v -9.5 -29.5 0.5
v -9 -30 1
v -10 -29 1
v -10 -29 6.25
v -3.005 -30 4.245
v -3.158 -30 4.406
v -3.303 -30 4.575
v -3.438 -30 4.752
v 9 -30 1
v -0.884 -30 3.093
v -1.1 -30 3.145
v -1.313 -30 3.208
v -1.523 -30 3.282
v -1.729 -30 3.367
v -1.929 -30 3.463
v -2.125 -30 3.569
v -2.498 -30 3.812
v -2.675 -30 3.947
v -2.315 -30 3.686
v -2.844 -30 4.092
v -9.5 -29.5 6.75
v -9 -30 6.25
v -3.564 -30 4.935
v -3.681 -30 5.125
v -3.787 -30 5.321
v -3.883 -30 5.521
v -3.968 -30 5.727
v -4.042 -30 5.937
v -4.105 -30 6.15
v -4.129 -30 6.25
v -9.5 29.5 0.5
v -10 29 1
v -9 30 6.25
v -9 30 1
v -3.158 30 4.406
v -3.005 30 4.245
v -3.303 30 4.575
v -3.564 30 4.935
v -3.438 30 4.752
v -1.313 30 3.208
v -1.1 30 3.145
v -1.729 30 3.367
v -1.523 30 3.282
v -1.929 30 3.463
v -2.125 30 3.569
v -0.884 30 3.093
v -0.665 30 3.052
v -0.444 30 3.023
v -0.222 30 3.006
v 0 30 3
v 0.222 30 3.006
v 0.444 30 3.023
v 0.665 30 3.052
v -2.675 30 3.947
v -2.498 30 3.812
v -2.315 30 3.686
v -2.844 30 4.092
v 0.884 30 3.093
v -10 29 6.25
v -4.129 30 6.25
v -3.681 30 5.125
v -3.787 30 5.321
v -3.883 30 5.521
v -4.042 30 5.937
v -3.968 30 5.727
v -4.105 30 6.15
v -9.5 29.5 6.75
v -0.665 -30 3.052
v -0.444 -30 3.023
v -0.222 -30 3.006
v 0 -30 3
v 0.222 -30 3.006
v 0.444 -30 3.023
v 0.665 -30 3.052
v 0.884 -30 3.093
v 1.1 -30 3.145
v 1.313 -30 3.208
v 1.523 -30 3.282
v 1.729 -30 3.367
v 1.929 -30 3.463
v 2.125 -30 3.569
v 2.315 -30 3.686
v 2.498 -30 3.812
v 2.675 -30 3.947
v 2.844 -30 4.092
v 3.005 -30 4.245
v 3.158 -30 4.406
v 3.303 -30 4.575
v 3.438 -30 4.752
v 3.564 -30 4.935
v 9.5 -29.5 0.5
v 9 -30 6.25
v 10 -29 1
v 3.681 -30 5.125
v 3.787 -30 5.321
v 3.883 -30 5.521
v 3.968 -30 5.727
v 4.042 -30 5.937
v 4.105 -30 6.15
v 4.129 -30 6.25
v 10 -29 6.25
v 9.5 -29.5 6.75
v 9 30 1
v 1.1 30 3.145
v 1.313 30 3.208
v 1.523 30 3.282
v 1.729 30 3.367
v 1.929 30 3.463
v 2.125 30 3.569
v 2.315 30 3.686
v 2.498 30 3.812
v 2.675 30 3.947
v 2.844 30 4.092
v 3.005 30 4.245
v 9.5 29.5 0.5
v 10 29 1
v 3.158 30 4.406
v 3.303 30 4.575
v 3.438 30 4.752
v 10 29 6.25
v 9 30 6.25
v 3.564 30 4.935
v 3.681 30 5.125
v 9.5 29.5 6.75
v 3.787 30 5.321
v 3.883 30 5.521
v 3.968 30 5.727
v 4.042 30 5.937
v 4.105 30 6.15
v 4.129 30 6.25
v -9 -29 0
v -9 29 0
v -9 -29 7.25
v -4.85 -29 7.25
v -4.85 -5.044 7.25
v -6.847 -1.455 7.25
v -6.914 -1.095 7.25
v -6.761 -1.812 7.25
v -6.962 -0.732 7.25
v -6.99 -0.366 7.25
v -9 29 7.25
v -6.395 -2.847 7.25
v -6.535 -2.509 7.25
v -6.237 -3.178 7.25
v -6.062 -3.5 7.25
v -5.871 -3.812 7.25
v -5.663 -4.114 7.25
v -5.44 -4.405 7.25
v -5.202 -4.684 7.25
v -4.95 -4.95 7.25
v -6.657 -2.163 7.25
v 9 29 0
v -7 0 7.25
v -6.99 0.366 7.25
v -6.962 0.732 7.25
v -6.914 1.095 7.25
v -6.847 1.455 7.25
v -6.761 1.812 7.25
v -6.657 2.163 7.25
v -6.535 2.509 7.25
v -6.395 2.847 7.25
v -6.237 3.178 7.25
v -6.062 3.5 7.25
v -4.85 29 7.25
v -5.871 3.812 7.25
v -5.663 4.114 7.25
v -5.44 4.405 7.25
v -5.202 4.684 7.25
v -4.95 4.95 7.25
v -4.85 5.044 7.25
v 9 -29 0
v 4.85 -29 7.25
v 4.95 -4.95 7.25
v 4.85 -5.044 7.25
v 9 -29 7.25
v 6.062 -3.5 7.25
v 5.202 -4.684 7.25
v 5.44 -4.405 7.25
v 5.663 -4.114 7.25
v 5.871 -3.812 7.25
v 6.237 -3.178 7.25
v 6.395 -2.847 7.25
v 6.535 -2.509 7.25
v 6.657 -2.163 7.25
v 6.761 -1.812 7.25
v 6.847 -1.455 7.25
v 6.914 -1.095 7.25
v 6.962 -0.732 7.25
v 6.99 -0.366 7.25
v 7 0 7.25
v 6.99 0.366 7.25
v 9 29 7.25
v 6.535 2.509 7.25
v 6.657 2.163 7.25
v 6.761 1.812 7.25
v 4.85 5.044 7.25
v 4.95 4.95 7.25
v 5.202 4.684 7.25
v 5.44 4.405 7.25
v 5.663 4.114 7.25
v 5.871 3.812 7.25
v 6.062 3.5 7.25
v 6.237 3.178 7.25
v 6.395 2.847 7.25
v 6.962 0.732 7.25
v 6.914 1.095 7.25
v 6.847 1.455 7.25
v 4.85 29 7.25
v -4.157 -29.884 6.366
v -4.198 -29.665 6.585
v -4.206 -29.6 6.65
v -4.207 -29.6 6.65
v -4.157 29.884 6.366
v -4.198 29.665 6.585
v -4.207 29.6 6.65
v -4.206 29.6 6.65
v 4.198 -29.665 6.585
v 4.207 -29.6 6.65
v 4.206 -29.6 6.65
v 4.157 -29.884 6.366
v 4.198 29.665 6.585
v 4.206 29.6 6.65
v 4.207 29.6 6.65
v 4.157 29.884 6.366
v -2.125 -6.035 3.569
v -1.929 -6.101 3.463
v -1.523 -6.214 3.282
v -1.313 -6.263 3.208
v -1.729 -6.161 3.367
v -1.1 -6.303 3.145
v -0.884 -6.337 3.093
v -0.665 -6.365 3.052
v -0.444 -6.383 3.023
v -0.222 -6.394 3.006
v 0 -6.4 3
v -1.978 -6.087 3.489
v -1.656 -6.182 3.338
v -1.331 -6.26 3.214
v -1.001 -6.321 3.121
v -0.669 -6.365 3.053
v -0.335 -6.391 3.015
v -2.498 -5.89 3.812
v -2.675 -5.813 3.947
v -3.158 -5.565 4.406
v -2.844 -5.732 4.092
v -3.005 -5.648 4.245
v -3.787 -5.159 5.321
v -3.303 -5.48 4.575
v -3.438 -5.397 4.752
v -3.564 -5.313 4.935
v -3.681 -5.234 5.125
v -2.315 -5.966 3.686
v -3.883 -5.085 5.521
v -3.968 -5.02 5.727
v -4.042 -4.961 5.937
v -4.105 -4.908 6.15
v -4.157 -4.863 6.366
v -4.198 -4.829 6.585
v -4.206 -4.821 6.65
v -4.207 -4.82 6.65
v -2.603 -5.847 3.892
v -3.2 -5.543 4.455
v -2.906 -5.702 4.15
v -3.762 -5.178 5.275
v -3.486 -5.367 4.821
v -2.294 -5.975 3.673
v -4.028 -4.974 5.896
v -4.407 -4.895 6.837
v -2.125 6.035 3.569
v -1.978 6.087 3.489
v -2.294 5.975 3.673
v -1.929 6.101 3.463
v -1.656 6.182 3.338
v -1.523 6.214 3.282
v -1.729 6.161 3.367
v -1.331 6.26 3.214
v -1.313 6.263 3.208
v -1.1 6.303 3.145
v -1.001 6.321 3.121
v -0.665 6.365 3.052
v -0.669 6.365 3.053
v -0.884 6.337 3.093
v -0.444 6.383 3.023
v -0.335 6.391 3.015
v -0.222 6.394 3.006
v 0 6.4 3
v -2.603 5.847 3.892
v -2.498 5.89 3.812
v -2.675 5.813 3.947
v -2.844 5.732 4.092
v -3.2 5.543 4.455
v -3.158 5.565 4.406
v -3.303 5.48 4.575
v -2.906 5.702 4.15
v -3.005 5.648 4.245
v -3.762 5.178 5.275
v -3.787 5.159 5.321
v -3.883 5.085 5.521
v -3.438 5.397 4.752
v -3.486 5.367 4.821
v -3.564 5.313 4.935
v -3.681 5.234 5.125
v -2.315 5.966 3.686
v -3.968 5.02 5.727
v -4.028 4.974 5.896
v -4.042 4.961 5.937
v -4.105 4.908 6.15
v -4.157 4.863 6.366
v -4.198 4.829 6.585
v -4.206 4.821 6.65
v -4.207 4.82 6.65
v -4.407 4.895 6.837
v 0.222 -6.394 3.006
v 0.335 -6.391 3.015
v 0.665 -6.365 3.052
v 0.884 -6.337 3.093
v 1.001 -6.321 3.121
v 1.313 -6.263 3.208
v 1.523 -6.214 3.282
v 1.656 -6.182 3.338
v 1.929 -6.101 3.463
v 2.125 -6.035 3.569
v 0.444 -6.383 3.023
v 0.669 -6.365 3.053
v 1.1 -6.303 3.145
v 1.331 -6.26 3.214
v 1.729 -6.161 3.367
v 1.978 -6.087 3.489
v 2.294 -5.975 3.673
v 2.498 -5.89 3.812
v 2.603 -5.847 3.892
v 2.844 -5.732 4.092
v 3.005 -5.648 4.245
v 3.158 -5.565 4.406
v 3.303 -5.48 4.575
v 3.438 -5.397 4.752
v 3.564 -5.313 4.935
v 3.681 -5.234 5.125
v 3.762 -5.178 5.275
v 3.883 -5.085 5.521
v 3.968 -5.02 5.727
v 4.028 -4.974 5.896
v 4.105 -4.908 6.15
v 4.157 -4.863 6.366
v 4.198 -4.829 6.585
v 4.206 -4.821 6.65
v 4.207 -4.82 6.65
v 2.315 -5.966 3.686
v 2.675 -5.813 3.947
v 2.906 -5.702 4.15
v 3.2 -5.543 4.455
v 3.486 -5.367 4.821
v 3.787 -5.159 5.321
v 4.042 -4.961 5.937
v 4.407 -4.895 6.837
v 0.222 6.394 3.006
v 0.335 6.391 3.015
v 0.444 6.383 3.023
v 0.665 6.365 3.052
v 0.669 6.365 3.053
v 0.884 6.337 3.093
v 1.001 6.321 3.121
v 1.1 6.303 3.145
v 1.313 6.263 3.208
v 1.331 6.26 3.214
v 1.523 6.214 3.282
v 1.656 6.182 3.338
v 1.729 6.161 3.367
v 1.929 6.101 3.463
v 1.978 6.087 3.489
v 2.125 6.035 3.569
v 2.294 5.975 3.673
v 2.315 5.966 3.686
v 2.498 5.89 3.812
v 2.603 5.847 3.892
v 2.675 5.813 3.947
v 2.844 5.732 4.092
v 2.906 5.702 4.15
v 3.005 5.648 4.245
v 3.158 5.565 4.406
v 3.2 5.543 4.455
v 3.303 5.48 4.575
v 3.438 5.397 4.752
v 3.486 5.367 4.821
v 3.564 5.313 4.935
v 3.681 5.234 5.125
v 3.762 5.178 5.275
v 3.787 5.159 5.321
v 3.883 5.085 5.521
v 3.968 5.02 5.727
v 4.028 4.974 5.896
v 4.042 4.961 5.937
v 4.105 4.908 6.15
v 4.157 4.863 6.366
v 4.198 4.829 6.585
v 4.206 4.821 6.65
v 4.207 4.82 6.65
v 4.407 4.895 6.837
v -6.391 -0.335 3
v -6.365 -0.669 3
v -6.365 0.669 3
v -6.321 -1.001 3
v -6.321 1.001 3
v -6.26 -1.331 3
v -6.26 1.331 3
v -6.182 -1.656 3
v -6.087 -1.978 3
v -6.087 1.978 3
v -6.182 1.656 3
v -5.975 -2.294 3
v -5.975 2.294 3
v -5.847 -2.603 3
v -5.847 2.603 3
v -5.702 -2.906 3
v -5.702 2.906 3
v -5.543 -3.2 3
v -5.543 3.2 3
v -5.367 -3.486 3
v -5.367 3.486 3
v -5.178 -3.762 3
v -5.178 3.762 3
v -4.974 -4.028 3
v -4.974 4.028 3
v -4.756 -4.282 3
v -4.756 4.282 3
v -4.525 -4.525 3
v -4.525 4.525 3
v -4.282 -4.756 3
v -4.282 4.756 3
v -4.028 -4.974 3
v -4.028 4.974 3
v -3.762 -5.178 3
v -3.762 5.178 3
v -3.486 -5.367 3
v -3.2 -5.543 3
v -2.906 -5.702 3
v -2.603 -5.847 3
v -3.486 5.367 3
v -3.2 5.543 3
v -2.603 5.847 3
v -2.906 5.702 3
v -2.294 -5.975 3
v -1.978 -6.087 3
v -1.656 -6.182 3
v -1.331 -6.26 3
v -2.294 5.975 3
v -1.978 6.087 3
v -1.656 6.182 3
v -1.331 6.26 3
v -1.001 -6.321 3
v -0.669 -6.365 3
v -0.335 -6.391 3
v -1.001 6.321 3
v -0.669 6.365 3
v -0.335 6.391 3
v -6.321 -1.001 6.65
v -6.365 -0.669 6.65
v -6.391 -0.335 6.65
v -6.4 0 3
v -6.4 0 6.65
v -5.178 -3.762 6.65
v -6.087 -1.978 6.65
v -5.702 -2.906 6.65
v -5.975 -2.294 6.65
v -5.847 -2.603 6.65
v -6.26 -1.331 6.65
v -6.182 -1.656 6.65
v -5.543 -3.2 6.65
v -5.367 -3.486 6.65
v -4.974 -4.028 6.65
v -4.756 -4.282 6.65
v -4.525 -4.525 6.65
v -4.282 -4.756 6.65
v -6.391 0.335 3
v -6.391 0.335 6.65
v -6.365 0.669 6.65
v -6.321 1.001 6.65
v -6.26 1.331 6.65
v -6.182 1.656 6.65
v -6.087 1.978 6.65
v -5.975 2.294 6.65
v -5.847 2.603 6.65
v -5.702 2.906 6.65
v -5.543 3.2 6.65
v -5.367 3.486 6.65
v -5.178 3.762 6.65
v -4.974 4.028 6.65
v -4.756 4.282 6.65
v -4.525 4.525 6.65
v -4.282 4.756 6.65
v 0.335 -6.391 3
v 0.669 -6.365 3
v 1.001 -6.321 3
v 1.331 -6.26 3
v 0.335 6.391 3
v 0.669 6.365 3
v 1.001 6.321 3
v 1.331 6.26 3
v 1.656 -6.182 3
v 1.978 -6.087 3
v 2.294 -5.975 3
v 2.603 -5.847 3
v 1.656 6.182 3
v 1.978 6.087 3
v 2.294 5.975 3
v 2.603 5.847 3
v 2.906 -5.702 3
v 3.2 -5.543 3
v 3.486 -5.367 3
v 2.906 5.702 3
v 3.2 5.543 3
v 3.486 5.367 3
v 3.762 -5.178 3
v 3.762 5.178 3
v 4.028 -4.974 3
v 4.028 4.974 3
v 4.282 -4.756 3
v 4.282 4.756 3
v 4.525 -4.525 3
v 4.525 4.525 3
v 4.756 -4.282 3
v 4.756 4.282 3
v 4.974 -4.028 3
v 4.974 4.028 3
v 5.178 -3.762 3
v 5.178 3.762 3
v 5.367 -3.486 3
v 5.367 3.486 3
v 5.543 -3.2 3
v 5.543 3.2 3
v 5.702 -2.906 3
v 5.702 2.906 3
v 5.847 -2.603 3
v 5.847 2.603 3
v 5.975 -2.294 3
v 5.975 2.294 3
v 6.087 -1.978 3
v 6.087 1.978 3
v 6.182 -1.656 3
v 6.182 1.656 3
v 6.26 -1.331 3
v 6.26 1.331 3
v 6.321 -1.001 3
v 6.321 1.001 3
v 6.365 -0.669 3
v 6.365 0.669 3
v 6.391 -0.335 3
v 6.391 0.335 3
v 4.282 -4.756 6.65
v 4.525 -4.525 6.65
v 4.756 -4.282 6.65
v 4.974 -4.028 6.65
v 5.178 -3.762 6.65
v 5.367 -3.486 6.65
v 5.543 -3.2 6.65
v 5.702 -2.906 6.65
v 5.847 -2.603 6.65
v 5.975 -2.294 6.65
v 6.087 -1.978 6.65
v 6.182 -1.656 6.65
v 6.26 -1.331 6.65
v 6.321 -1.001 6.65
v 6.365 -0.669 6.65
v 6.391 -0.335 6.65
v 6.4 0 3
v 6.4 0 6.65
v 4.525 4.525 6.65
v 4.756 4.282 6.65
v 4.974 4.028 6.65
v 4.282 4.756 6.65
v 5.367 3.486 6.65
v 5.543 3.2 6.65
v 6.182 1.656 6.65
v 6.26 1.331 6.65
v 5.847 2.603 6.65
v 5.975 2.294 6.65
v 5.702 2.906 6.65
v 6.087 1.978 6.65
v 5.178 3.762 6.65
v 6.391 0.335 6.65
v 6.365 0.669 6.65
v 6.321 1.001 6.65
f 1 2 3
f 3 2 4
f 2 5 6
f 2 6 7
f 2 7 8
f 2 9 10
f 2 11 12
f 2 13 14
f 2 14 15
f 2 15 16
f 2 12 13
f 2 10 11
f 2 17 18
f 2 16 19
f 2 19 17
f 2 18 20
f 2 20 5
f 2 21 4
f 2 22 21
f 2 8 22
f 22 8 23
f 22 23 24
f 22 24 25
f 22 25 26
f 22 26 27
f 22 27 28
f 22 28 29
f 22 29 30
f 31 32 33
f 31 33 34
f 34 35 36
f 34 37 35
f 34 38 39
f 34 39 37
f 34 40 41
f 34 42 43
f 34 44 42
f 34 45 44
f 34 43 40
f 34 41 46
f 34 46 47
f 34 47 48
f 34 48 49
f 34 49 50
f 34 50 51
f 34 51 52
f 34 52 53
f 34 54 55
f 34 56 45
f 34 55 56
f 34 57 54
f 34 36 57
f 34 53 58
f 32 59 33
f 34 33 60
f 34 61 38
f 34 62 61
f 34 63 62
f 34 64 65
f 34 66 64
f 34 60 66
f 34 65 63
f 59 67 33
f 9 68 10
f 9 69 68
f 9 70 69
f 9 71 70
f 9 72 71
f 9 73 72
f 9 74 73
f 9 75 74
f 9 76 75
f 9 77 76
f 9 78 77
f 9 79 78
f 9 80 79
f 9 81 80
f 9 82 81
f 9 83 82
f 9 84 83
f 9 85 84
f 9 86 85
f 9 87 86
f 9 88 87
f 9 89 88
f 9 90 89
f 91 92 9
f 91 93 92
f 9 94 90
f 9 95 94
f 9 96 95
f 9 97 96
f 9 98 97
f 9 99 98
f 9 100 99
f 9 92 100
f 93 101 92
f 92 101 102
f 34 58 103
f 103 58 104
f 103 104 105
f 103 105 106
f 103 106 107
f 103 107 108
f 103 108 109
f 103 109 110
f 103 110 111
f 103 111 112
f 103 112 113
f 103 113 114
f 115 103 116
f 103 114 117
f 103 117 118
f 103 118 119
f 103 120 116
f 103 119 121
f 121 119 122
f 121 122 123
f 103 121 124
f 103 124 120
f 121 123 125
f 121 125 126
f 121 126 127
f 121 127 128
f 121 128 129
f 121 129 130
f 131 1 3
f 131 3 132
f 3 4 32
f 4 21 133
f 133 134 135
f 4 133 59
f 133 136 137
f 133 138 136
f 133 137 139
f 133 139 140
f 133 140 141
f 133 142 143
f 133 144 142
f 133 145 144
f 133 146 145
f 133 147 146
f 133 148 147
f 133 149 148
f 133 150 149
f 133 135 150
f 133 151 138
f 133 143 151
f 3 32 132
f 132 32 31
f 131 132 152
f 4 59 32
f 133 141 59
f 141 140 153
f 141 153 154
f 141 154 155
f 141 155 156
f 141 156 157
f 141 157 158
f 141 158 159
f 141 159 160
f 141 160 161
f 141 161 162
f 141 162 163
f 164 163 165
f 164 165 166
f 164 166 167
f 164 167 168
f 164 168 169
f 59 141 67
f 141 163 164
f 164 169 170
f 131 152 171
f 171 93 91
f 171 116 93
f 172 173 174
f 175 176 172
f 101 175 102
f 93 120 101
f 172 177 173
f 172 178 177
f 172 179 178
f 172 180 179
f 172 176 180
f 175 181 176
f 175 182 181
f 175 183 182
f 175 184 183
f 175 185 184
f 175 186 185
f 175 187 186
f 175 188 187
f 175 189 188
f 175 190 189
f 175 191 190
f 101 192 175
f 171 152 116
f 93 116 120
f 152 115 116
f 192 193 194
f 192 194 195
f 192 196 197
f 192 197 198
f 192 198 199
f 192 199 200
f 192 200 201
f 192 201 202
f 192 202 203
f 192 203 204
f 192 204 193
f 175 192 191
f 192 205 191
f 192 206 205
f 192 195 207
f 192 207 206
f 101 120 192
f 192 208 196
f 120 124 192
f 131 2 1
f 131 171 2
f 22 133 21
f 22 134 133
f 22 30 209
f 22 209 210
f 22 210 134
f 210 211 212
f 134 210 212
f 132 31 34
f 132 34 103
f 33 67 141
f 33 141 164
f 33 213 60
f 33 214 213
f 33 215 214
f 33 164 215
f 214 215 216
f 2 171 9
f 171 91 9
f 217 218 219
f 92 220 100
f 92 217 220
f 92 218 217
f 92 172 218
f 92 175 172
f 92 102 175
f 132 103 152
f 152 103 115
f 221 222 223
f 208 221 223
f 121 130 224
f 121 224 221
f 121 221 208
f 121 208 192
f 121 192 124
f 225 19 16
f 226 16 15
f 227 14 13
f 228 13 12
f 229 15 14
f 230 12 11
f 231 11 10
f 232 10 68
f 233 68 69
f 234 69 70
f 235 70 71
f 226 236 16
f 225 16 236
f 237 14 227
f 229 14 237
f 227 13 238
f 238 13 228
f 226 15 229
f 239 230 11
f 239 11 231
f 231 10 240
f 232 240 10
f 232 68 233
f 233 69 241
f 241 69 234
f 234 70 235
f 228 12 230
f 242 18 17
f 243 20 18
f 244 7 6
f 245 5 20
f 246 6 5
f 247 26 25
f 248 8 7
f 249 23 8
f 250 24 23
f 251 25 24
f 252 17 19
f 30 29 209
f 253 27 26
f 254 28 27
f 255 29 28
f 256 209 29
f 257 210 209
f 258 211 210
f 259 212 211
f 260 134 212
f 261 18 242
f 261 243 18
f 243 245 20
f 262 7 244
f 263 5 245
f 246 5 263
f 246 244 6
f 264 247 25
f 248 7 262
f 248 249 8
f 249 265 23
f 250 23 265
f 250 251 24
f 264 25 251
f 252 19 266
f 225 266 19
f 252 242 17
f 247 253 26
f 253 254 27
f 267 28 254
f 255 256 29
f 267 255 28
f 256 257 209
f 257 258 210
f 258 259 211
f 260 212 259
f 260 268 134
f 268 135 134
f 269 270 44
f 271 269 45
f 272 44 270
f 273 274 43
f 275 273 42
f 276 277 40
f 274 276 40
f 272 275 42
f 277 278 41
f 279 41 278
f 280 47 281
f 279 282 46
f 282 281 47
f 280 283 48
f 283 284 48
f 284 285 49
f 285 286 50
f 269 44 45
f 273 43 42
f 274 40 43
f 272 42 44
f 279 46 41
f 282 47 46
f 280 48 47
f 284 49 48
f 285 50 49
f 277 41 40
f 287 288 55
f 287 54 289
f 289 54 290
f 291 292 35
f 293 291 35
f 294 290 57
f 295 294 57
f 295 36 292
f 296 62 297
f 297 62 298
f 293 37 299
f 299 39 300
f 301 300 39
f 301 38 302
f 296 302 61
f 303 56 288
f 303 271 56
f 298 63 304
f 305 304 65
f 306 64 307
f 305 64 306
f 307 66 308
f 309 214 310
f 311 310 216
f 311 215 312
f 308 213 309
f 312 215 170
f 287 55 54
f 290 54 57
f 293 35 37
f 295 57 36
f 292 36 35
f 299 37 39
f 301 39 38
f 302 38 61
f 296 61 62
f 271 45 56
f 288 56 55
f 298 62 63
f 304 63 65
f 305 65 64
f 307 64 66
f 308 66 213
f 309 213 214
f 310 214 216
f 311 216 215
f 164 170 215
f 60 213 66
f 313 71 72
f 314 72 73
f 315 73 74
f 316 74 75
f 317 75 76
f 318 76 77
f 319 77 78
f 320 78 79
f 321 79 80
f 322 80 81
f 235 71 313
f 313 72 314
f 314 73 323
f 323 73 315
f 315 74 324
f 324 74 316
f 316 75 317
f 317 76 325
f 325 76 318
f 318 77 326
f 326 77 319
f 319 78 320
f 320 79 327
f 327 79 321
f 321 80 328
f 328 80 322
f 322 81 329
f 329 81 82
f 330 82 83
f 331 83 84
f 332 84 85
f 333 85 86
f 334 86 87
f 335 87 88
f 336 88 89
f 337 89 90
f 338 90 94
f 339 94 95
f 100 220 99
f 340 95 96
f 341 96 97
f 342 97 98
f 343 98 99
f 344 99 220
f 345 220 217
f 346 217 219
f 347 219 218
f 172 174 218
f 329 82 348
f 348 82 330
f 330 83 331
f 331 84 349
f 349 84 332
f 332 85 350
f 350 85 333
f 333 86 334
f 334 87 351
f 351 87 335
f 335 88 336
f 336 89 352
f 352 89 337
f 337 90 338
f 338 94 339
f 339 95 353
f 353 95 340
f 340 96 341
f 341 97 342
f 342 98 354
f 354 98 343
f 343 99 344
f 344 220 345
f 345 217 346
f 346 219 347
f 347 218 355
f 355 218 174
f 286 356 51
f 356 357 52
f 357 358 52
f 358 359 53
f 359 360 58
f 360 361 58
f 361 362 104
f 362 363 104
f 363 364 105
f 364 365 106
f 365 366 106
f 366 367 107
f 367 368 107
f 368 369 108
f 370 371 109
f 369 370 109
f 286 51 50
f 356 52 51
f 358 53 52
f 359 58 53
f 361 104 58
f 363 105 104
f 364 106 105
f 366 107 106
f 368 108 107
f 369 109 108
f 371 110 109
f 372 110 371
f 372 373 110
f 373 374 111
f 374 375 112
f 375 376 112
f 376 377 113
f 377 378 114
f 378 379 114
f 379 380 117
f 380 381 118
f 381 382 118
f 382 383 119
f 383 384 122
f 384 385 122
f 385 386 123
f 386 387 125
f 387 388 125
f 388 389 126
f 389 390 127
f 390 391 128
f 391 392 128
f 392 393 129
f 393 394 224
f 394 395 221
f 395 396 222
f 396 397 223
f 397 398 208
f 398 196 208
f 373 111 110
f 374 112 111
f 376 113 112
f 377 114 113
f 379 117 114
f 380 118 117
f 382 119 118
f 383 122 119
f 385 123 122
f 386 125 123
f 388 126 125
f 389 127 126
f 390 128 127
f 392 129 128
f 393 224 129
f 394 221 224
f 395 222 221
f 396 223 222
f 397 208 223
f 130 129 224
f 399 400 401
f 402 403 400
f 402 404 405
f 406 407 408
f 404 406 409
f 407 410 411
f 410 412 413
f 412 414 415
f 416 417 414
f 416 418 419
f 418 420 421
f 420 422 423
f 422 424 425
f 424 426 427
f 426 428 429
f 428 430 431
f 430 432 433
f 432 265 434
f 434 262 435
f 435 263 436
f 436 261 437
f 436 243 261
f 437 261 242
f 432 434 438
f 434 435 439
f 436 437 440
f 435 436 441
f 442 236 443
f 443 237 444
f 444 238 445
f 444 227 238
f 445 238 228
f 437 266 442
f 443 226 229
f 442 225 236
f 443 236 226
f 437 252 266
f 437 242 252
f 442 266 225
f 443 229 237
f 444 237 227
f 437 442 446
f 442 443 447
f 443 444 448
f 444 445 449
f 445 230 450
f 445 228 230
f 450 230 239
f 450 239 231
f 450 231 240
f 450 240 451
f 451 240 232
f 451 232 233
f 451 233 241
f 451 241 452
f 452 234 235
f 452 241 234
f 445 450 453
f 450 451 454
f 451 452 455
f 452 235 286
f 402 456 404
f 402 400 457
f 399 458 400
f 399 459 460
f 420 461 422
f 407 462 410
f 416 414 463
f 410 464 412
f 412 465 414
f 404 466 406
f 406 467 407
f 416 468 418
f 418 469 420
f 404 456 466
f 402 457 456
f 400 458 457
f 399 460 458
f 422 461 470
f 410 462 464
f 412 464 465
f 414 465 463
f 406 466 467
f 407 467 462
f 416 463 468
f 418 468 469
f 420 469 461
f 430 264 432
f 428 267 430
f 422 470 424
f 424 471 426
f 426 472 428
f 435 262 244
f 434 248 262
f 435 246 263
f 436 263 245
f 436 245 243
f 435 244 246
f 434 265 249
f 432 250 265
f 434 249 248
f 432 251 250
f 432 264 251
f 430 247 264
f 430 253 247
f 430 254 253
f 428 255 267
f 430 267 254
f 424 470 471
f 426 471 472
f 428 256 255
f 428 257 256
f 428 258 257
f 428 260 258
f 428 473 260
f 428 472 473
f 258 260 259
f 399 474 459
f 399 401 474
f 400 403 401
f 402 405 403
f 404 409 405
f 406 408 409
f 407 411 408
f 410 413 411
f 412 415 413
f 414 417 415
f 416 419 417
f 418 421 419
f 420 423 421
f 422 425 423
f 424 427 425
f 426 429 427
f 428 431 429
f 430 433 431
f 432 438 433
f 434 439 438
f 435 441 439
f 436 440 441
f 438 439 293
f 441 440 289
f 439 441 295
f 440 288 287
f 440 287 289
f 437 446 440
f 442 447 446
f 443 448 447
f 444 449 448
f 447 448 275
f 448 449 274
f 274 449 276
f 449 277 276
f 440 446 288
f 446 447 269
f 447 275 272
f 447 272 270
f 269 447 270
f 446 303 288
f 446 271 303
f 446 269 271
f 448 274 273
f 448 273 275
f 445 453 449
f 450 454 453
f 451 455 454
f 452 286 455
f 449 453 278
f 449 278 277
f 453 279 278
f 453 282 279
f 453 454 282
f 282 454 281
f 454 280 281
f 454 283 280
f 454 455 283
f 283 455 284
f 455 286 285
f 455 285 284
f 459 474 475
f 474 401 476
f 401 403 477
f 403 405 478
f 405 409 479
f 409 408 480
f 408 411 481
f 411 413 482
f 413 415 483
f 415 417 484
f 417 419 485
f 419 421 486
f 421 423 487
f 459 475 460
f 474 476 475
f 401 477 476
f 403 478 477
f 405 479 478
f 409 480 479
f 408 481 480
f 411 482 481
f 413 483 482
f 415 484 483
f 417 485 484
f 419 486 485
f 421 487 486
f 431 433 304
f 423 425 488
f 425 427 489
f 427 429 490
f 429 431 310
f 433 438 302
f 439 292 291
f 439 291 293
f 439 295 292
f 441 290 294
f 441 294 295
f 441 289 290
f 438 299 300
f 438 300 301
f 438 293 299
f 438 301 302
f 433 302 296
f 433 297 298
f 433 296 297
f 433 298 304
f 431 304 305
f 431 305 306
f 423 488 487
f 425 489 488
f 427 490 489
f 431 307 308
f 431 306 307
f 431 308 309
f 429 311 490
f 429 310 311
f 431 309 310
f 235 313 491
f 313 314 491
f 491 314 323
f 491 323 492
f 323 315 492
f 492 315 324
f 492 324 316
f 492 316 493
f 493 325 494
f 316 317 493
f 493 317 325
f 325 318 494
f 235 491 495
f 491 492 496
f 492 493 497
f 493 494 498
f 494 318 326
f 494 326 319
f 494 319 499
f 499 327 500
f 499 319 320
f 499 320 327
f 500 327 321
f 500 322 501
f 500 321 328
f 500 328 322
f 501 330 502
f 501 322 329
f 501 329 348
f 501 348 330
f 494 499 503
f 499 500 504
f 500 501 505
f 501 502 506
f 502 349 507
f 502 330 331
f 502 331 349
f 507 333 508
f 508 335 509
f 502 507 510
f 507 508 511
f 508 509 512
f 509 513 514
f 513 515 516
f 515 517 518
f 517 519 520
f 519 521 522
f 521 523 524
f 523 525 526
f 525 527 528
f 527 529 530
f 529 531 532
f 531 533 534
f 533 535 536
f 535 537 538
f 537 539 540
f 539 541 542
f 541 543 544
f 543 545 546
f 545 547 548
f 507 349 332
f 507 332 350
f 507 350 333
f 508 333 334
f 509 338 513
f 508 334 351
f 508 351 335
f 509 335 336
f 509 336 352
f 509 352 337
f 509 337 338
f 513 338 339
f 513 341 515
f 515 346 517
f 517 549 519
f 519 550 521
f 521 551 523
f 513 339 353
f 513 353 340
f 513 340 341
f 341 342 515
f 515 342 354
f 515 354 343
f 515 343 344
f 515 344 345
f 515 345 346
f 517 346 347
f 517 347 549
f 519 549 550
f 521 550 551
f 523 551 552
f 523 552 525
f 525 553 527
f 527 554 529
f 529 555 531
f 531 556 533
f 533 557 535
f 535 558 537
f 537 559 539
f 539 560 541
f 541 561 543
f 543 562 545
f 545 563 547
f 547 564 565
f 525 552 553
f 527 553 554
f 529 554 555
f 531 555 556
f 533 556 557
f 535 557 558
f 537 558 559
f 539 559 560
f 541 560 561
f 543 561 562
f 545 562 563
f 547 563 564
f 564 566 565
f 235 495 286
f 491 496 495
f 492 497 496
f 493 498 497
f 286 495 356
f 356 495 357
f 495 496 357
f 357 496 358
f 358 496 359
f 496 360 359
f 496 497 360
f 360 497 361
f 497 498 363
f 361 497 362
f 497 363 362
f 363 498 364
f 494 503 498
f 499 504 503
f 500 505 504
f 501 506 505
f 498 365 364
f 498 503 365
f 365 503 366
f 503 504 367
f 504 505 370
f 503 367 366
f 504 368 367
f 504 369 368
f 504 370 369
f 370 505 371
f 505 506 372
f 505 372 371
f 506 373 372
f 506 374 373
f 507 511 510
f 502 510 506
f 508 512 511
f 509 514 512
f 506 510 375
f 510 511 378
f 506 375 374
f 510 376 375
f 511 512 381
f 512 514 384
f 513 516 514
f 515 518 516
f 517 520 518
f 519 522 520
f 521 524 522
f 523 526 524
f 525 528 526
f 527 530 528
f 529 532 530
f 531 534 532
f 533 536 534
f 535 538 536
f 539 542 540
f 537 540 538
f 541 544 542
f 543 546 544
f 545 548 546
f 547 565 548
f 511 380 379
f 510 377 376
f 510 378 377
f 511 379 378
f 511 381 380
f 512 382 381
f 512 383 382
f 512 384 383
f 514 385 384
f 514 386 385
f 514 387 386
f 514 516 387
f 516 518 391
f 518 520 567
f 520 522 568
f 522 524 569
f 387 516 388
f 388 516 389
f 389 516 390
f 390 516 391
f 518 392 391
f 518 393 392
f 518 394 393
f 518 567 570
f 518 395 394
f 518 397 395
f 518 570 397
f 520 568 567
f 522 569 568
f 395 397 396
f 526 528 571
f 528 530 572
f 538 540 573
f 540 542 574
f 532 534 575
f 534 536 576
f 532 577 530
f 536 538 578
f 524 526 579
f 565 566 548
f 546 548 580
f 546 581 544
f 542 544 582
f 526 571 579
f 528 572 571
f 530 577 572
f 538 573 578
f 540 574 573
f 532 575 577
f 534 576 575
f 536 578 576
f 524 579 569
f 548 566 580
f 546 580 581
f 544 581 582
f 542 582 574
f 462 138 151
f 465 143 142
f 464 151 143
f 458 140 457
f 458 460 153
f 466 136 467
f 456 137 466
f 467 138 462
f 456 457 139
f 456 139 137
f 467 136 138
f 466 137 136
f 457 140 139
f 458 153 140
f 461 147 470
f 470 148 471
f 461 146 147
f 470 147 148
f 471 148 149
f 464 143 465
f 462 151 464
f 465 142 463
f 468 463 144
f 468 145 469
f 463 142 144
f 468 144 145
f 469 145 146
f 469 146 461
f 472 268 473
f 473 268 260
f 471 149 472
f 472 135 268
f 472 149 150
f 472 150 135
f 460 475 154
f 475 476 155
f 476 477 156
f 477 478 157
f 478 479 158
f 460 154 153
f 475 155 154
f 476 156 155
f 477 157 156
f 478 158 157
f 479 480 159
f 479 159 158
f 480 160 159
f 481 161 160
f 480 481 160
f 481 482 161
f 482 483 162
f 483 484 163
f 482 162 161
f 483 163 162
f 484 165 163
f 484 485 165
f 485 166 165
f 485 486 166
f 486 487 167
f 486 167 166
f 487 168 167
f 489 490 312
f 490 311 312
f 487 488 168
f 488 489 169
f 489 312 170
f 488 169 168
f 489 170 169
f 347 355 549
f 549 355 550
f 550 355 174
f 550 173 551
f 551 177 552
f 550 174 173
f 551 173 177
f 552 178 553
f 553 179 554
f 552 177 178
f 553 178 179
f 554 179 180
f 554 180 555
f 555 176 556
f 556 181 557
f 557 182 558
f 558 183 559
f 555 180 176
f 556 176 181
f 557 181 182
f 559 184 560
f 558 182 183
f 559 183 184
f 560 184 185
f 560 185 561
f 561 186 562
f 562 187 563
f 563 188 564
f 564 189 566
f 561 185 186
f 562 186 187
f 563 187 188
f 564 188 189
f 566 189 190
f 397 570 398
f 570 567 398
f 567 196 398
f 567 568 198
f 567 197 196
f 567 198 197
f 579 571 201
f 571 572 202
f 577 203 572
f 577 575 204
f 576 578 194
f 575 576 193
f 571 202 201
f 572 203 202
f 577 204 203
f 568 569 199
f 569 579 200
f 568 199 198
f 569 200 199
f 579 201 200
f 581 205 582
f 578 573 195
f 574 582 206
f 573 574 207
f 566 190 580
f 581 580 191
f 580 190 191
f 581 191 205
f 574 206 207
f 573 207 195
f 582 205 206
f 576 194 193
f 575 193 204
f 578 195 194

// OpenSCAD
// ============================================================
// Pencil rest — a block with a cradle down its top, to park a
// pencil on the desk instead of letting it roll off
//
// A rectangular block with every edge chamfered and one
// cylindrical trough running the length of its top face. The
// pencil lies in the trough. Length is how much of the pencil
// is carried, width is how much desk the block stands on, and
// both are free choices.
//
// THE CRADLE IS NOT A CHOICE. Its radius is the pencil plus a
// clearance, it is cut to exactly half a cylinder, and the
// block is then made as tall as that cut plus the floor left
// under it. Height falls out of the cradle rather than the
// cradle being fitted into a height, which is what makes it
// impossible for the trough to reach the bottom: floor_meat is
// what is left under the deepest point, always, whatever
// pencil the block is cut for and however wide or long it is
// made.
//
// Cutting exactly half the cylinder is the other thing that is
// fixed by construction. The depth of the cut and the radius
// of the cut are one expression, so the trough walls arrive at
// the top face vertical. A deeper cut would undercut the
// pencil — it could not be dropped in, only threaded in from
// the end, and the roof of the undercut would be an overhang.
// Half is the deepest a cradle can be and still open upward,
// and it also leaves the pencil standing half proud, which is
// what makes it easy to pick up.
//
// The trough runs out through both ends. A blind dish would
// need end walls, and end walls in a scoop this shallow are
// the one place a support would be wanted.
//
// A round punch through the middle is what makes the pencil
// possible to pick up. It takes the rim away on both sides at
// once, so a finger and thumb close on the pencil's whole
// diameter instead of pinching at whatever stands proud of the
// top face. Neither of its limits is a number to get right:
//
// - It cannot reach the sides. Its diameter is the width less
//   the flat, the ease and the chamfer either side, so the
//   material outside it is what punch_wall says it is and no
//   value of anything can eat it.
// - It cannot go deeper than the trough. Its floor is written
//   as the trough's own deepest point, not as a depth of its
//   own, so the two are one plane and the punch can never be
//   the feature that breaks the bottom.
//
// That floor also lands exactly level with the underside of
// the pencil, which is not a coincidence to be tuned: a round
// pencil beds at the bottom of a round trough, so its lowest
// point and the trough's are the same point whatever the
// clearance. A finger does not get under the pencil, and it
// does not need to.
//
// PRINT NOTES:
// - PLA or PETG, no supports needed. Print as modeled, base
//   down.
// - Nothing bridges. The cradle opens upward, so its whole
//   surface faces up, and so does the punch: flat floor,
//   vertical wall, and an ease at the rim that is a 45 deg
//   cone opening up. The only downward faces in the part are
//   the chamfers along the base, at 45 deg.
// - Every chamfer here has its run and its rise in the same
//   expression, so no value of any knob can turn one into an
//   overhang.
// - Print it solid, or near it. It is a small block and the
//   only thing it has to do is stay put, which is a question
//   of mass and of the friction of the bottom face.
// - The bottom face is the one that shows least and the top
//   face is the one a pencil rolls on, so this way up also
//   puts the plate's finish where it does no harm.
// ============================================================

// ===== MEASURE THIS ON YOUR ACTUAL PENCIL =====
// An outside-the-solid measurement, so plain calipers reach it. It names the
// caliper it needs by the size printed on the tool: a 6 in caliper stops at
// 150 mm, an 8 in at 200 mm, a 12 in at 300 mm

// Outer diameter of the pencil (mm) — outside jaws on the barrel, 6 in
// caliper. A hexagonal pencil is not round: take it across the corners rather
// than across the flats, and use the largest reading, since the corners are
// what the cradle has to clear. Measure the barrel, not the ferrule
pencil_d = 7.5;

// ===== DECIDE THESE =====
// The footprint. Neither one can reach the cradle, and neither one can change
// its shape

// Length of the block (mm), along the pencil. How much of the pencil is
// carried; a long one is a tray for several, a short one is a bridge under one
block_l = 60;

// Width of the block (mm), across the pencil. How much desk it stands on, and
// so how hard it is to knock over. It has to be wider than the cradle plus a
// rim either side, which is asserted below
block_w = 20;

// ===== TUNE THESE =====
pencil_clearance = 0.5; // Added to the cradle radius (mm) — the pencil drops in and lifts out rather than being pressed into a socket
floor_meat = 3; // Material left under the deepest point of the cradle (mm). This is the number that keeps the trough off the bottom, and the block grows taller to hold it
chamfer = 1; // Break on every edge of the block (mm)
cradle_ease = 0.6; // Break along both rims of the cradle (mm) — the edge a pencil is rolled over on its way in
punch_wall = 2; // Flat left on the top face between the punch and the outer chamfer (mm). This is the knob that sets how big the punch comes out, and it is the material that keeps it off the sides
punch_ease = 0.6; // Break around the rim of the punch (mm) — the edge a fingertip drags over

$fn = 120;

// ===== DERIVED =====

// The cradle. Radius from the pencil, depth from the radius: one expression
// for both, so the cut is half a cylinder whatever the pencil measures and the
// walls always reach the top face vertical
cradle_r = pencil_d / 2 + pencil_clearance;
cradle_depth = cradle_r;

// Height of the block. It is the cut plus the floor, in that order — the
// cradle is not fitted into a height, the height is made to hold the cradle
block_h = cradle_depth + floor_meat;

// Width of the cradle's mouth in the top face, before the rims are broken. Cut
// to half a cylinder, so it is exactly the cradle's diameter
mouth_w = 2 * cradle_r;

// Flat left of the top face either side of the cradle, once the outer chamfer
// has taken from one edge and the cradle's own ease from the other
rim = (block_w - mouth_w) / 2 - chamfer - cradle_ease;

// How far the pencil stands above the top face, resting on the arc. Half of it
// less whatever the clearance lets it settle, and it is what there is to pinch
// hold of
pencil_proud = pencil_d / 2 - pencil_clearance;

// Where the cradle's ease meets the arc. Held on the circle rather than guessed
// at, so the chamfer runs into the trough wall instead of leaving a step in it
ease_foot = sqrt(cradle_r * cradle_r - cradle_ease * cradle_ease);

// The punch. Its floor is the trough's deepest point written out again rather
// than a depth of its own, so the two are the same plane and no arithmetic
// stands between the punch and the floor it must not break
punch_floor = block_h - cradle_depth;
punch_depth = block_h - punch_floor;

// Diameter of the punch. What is left over once the outer chamfer, the flat and
// the punch's own ease have been taken off both sides, so the material outside
// it is punch_wall by construction and the sides are safe from any value
punch_d = block_w - 2 * (chamfer + punch_wall + punch_ease);
punch_mouth = punch_d + 2 * punch_ease;

// Material left between the punch's mouth and each end of the block
punch_end_meat = (block_l - punch_mouth) / 2 - chamfer;

// How much of the pencil's side a finger can close on at the punch. The floor
// of the punch is level with the underside of the pencil, so it is all of it
punch_grip = pencil_d;

overshoot = 1; // Run past both ends, so the trough cuts through cleanly

echo(str("block = ", block_w, " x ", block_l, " x ", block_h, " mm"));
echo(str("cradle = ", mouth_w, " mm across, ", cradle_depth, " mm deep"));
echo(str("floor under the cradle = ", floor_meat, " mm"));
echo(str("flat rim either side = ", rim, " mm"));
echo(str("pencil stands proud of the top face by = ", pencil_proud, " mm"));
echo(str("punch = ", punch_d, " mm across, ", punch_mouth, " mm at the mouth, ", punch_depth, " mm deep"));
echo(str("punch floor is level with the trough, on the same ", floor_meat, " mm of floor"));
echo(str("punch leaves ", punch_wall, " mm of flat either side and ", punch_end_meat, " mm at each end"));
echo(str("pencil exposed at the punch = ", punch_grip, " mm, its full diameter"));

assert(pencil_d > 0, "pencil_d has to be positive");
assert(cradle_r > 0, "pencil_clearance has closed the cradle — it cannot be more negative than the pencil is thick");
assert(floor_meat > 0, "floor_meat has to be positive — it is the whole floor under the cradle");
assert(rim > 0, "the cradle has eaten the top face — widen block_w, or reduce chamfer or cradle_ease");
assert(pencil_proud > 0, "the clearance has sunk the pencil below the top face — reduce pencil_clearance");
assert(cradle_ease < cradle_r, "the cradle's ease is wider than the cradle — reduce cradle_ease");
assert(punch_d > mouth_w, "the punch is no wider than the cradle, so it opens nothing a finger did not already have — widen block_w, or take it out of punch_wall");
assert(punch_end_meat > 0, "the punch has run out through the ends of the block — lengthen block_l, or widen punch_wall to narrow the punch");
assert(punch_ease < punch_depth, "the punch's ease is deeper than the punch — reduce punch_ease");
assert(2 * chamfer < block_w, "the width chamfers have met — reduce chamfer or widen block_w");
assert(2 * chamfer < block_l, "the length chamfers have met — reduce chamfer or lengthen block_l");
assert(2 * chamfer < block_h, "the height chamfers have met — reduce chamfer, or add floor_meat to make the block taller");

// A rectangle with all four corners cut at 45 deg, centred on the origin. Each
// corner takes the same amount off both edges, so the cut is 45 deg whatever
// chamfer is set to. Used three times, once per pair of faces, and the
// intersection of the three is a block with all twelve edges broken
module chamfered_rect_2d(across, up) {
  polygon([
    [-across / 2 + chamfer, -up / 2],
    [across / 2 - chamfer, -up / 2],
    [across / 2, -up / 2 + chamfer],
    [across / 2, up / 2 - chamfer],
    [across / 2 - chamfer, up / 2],
    [-across / 2 + chamfer, up / 2],
    [-across / 2, up / 2 - chamfer],
    [-across / 2, -up / 2 + chamfer],
  ]);
}

// The cradle, in cross section: x is across the width, y is up from the base.
// The circle sits on the top face, so half of it is in the block and half is
// in the air above it — that is the half cylinder, drawn rather than
// calculated. The trapezoid breaks both rims, and its lower corners are held
// on the circle so the break runs into the arc without a step
module cradle_2d() {
  circle(r = cradle_r);

  translate([0, -cradle_ease])
    polygon([
      [-ease_foot, 0],
      [ease_foot, 0],
      [cradle_r + cradle_ease, cradle_ease],
      [-cradle_r - cradle_ease, cradle_ease],
    ]);
}

// Run a cross section the length of the block, clear of both ends
module along_length(extra = 0) {
  translate([0, block_l / 2 + overshoot + extra, 0])
    rotate([90, 0, 0])
      linear_extrude(block_l + 2 * (overshoot + extra))
        children();
}

// Run a cross section across the width of the block, clear of both sides
module across_width(extra = 0) {
  translate([block_w / 2 + overshoot + extra, 0, 0])
    rotate([0, -90, 0])
      linear_extrude(block_w + 2 * (overshoot + extra))
        children();
}

// The block: three chamfered rectangles, one per pair of opposite faces,
// intersected. Each one breaks the four edges its own corners stand in for —
// the plan takes the uprights, and the two elevations take the top and bottom
// edges between them
module block_body() {
  intersection() {
    linear_extrude(block_h)
      chamfered_rect_2d(block_w, block_l);

    along_length()
      translate([0, block_h / 2])
        chamfered_rect_2d(block_w, block_h);

    across_width()
      translate([block_h / 2, 0])
        chamfered_rect_2d(block_h, block_l);
  }
}

module pencil_rest() {
  difference() {
    block_body();

    along_length(1)
      translate([0, block_h])
        cradle_2d();

    // The punch, from the trough's own floor up and out through the top
    translate([0, 0, punch_floor])
      cylinder(d = punch_d, h = punch_depth + overshoot);

    // Its rim, broken by a cone that opens upward. The cone's radial change
    // and its height are one expression, so it is 45 deg whatever punch_ease
    // is set to, and it can no more hang than the chamfers can
    translate([0, 0, block_h - punch_ease])
      cylinder(d1 = punch_d, d2 = punch_d + 2 * (punch_ease + overshoot), h = punch_ease + overshoot);
  }
}

pencil_rest();
